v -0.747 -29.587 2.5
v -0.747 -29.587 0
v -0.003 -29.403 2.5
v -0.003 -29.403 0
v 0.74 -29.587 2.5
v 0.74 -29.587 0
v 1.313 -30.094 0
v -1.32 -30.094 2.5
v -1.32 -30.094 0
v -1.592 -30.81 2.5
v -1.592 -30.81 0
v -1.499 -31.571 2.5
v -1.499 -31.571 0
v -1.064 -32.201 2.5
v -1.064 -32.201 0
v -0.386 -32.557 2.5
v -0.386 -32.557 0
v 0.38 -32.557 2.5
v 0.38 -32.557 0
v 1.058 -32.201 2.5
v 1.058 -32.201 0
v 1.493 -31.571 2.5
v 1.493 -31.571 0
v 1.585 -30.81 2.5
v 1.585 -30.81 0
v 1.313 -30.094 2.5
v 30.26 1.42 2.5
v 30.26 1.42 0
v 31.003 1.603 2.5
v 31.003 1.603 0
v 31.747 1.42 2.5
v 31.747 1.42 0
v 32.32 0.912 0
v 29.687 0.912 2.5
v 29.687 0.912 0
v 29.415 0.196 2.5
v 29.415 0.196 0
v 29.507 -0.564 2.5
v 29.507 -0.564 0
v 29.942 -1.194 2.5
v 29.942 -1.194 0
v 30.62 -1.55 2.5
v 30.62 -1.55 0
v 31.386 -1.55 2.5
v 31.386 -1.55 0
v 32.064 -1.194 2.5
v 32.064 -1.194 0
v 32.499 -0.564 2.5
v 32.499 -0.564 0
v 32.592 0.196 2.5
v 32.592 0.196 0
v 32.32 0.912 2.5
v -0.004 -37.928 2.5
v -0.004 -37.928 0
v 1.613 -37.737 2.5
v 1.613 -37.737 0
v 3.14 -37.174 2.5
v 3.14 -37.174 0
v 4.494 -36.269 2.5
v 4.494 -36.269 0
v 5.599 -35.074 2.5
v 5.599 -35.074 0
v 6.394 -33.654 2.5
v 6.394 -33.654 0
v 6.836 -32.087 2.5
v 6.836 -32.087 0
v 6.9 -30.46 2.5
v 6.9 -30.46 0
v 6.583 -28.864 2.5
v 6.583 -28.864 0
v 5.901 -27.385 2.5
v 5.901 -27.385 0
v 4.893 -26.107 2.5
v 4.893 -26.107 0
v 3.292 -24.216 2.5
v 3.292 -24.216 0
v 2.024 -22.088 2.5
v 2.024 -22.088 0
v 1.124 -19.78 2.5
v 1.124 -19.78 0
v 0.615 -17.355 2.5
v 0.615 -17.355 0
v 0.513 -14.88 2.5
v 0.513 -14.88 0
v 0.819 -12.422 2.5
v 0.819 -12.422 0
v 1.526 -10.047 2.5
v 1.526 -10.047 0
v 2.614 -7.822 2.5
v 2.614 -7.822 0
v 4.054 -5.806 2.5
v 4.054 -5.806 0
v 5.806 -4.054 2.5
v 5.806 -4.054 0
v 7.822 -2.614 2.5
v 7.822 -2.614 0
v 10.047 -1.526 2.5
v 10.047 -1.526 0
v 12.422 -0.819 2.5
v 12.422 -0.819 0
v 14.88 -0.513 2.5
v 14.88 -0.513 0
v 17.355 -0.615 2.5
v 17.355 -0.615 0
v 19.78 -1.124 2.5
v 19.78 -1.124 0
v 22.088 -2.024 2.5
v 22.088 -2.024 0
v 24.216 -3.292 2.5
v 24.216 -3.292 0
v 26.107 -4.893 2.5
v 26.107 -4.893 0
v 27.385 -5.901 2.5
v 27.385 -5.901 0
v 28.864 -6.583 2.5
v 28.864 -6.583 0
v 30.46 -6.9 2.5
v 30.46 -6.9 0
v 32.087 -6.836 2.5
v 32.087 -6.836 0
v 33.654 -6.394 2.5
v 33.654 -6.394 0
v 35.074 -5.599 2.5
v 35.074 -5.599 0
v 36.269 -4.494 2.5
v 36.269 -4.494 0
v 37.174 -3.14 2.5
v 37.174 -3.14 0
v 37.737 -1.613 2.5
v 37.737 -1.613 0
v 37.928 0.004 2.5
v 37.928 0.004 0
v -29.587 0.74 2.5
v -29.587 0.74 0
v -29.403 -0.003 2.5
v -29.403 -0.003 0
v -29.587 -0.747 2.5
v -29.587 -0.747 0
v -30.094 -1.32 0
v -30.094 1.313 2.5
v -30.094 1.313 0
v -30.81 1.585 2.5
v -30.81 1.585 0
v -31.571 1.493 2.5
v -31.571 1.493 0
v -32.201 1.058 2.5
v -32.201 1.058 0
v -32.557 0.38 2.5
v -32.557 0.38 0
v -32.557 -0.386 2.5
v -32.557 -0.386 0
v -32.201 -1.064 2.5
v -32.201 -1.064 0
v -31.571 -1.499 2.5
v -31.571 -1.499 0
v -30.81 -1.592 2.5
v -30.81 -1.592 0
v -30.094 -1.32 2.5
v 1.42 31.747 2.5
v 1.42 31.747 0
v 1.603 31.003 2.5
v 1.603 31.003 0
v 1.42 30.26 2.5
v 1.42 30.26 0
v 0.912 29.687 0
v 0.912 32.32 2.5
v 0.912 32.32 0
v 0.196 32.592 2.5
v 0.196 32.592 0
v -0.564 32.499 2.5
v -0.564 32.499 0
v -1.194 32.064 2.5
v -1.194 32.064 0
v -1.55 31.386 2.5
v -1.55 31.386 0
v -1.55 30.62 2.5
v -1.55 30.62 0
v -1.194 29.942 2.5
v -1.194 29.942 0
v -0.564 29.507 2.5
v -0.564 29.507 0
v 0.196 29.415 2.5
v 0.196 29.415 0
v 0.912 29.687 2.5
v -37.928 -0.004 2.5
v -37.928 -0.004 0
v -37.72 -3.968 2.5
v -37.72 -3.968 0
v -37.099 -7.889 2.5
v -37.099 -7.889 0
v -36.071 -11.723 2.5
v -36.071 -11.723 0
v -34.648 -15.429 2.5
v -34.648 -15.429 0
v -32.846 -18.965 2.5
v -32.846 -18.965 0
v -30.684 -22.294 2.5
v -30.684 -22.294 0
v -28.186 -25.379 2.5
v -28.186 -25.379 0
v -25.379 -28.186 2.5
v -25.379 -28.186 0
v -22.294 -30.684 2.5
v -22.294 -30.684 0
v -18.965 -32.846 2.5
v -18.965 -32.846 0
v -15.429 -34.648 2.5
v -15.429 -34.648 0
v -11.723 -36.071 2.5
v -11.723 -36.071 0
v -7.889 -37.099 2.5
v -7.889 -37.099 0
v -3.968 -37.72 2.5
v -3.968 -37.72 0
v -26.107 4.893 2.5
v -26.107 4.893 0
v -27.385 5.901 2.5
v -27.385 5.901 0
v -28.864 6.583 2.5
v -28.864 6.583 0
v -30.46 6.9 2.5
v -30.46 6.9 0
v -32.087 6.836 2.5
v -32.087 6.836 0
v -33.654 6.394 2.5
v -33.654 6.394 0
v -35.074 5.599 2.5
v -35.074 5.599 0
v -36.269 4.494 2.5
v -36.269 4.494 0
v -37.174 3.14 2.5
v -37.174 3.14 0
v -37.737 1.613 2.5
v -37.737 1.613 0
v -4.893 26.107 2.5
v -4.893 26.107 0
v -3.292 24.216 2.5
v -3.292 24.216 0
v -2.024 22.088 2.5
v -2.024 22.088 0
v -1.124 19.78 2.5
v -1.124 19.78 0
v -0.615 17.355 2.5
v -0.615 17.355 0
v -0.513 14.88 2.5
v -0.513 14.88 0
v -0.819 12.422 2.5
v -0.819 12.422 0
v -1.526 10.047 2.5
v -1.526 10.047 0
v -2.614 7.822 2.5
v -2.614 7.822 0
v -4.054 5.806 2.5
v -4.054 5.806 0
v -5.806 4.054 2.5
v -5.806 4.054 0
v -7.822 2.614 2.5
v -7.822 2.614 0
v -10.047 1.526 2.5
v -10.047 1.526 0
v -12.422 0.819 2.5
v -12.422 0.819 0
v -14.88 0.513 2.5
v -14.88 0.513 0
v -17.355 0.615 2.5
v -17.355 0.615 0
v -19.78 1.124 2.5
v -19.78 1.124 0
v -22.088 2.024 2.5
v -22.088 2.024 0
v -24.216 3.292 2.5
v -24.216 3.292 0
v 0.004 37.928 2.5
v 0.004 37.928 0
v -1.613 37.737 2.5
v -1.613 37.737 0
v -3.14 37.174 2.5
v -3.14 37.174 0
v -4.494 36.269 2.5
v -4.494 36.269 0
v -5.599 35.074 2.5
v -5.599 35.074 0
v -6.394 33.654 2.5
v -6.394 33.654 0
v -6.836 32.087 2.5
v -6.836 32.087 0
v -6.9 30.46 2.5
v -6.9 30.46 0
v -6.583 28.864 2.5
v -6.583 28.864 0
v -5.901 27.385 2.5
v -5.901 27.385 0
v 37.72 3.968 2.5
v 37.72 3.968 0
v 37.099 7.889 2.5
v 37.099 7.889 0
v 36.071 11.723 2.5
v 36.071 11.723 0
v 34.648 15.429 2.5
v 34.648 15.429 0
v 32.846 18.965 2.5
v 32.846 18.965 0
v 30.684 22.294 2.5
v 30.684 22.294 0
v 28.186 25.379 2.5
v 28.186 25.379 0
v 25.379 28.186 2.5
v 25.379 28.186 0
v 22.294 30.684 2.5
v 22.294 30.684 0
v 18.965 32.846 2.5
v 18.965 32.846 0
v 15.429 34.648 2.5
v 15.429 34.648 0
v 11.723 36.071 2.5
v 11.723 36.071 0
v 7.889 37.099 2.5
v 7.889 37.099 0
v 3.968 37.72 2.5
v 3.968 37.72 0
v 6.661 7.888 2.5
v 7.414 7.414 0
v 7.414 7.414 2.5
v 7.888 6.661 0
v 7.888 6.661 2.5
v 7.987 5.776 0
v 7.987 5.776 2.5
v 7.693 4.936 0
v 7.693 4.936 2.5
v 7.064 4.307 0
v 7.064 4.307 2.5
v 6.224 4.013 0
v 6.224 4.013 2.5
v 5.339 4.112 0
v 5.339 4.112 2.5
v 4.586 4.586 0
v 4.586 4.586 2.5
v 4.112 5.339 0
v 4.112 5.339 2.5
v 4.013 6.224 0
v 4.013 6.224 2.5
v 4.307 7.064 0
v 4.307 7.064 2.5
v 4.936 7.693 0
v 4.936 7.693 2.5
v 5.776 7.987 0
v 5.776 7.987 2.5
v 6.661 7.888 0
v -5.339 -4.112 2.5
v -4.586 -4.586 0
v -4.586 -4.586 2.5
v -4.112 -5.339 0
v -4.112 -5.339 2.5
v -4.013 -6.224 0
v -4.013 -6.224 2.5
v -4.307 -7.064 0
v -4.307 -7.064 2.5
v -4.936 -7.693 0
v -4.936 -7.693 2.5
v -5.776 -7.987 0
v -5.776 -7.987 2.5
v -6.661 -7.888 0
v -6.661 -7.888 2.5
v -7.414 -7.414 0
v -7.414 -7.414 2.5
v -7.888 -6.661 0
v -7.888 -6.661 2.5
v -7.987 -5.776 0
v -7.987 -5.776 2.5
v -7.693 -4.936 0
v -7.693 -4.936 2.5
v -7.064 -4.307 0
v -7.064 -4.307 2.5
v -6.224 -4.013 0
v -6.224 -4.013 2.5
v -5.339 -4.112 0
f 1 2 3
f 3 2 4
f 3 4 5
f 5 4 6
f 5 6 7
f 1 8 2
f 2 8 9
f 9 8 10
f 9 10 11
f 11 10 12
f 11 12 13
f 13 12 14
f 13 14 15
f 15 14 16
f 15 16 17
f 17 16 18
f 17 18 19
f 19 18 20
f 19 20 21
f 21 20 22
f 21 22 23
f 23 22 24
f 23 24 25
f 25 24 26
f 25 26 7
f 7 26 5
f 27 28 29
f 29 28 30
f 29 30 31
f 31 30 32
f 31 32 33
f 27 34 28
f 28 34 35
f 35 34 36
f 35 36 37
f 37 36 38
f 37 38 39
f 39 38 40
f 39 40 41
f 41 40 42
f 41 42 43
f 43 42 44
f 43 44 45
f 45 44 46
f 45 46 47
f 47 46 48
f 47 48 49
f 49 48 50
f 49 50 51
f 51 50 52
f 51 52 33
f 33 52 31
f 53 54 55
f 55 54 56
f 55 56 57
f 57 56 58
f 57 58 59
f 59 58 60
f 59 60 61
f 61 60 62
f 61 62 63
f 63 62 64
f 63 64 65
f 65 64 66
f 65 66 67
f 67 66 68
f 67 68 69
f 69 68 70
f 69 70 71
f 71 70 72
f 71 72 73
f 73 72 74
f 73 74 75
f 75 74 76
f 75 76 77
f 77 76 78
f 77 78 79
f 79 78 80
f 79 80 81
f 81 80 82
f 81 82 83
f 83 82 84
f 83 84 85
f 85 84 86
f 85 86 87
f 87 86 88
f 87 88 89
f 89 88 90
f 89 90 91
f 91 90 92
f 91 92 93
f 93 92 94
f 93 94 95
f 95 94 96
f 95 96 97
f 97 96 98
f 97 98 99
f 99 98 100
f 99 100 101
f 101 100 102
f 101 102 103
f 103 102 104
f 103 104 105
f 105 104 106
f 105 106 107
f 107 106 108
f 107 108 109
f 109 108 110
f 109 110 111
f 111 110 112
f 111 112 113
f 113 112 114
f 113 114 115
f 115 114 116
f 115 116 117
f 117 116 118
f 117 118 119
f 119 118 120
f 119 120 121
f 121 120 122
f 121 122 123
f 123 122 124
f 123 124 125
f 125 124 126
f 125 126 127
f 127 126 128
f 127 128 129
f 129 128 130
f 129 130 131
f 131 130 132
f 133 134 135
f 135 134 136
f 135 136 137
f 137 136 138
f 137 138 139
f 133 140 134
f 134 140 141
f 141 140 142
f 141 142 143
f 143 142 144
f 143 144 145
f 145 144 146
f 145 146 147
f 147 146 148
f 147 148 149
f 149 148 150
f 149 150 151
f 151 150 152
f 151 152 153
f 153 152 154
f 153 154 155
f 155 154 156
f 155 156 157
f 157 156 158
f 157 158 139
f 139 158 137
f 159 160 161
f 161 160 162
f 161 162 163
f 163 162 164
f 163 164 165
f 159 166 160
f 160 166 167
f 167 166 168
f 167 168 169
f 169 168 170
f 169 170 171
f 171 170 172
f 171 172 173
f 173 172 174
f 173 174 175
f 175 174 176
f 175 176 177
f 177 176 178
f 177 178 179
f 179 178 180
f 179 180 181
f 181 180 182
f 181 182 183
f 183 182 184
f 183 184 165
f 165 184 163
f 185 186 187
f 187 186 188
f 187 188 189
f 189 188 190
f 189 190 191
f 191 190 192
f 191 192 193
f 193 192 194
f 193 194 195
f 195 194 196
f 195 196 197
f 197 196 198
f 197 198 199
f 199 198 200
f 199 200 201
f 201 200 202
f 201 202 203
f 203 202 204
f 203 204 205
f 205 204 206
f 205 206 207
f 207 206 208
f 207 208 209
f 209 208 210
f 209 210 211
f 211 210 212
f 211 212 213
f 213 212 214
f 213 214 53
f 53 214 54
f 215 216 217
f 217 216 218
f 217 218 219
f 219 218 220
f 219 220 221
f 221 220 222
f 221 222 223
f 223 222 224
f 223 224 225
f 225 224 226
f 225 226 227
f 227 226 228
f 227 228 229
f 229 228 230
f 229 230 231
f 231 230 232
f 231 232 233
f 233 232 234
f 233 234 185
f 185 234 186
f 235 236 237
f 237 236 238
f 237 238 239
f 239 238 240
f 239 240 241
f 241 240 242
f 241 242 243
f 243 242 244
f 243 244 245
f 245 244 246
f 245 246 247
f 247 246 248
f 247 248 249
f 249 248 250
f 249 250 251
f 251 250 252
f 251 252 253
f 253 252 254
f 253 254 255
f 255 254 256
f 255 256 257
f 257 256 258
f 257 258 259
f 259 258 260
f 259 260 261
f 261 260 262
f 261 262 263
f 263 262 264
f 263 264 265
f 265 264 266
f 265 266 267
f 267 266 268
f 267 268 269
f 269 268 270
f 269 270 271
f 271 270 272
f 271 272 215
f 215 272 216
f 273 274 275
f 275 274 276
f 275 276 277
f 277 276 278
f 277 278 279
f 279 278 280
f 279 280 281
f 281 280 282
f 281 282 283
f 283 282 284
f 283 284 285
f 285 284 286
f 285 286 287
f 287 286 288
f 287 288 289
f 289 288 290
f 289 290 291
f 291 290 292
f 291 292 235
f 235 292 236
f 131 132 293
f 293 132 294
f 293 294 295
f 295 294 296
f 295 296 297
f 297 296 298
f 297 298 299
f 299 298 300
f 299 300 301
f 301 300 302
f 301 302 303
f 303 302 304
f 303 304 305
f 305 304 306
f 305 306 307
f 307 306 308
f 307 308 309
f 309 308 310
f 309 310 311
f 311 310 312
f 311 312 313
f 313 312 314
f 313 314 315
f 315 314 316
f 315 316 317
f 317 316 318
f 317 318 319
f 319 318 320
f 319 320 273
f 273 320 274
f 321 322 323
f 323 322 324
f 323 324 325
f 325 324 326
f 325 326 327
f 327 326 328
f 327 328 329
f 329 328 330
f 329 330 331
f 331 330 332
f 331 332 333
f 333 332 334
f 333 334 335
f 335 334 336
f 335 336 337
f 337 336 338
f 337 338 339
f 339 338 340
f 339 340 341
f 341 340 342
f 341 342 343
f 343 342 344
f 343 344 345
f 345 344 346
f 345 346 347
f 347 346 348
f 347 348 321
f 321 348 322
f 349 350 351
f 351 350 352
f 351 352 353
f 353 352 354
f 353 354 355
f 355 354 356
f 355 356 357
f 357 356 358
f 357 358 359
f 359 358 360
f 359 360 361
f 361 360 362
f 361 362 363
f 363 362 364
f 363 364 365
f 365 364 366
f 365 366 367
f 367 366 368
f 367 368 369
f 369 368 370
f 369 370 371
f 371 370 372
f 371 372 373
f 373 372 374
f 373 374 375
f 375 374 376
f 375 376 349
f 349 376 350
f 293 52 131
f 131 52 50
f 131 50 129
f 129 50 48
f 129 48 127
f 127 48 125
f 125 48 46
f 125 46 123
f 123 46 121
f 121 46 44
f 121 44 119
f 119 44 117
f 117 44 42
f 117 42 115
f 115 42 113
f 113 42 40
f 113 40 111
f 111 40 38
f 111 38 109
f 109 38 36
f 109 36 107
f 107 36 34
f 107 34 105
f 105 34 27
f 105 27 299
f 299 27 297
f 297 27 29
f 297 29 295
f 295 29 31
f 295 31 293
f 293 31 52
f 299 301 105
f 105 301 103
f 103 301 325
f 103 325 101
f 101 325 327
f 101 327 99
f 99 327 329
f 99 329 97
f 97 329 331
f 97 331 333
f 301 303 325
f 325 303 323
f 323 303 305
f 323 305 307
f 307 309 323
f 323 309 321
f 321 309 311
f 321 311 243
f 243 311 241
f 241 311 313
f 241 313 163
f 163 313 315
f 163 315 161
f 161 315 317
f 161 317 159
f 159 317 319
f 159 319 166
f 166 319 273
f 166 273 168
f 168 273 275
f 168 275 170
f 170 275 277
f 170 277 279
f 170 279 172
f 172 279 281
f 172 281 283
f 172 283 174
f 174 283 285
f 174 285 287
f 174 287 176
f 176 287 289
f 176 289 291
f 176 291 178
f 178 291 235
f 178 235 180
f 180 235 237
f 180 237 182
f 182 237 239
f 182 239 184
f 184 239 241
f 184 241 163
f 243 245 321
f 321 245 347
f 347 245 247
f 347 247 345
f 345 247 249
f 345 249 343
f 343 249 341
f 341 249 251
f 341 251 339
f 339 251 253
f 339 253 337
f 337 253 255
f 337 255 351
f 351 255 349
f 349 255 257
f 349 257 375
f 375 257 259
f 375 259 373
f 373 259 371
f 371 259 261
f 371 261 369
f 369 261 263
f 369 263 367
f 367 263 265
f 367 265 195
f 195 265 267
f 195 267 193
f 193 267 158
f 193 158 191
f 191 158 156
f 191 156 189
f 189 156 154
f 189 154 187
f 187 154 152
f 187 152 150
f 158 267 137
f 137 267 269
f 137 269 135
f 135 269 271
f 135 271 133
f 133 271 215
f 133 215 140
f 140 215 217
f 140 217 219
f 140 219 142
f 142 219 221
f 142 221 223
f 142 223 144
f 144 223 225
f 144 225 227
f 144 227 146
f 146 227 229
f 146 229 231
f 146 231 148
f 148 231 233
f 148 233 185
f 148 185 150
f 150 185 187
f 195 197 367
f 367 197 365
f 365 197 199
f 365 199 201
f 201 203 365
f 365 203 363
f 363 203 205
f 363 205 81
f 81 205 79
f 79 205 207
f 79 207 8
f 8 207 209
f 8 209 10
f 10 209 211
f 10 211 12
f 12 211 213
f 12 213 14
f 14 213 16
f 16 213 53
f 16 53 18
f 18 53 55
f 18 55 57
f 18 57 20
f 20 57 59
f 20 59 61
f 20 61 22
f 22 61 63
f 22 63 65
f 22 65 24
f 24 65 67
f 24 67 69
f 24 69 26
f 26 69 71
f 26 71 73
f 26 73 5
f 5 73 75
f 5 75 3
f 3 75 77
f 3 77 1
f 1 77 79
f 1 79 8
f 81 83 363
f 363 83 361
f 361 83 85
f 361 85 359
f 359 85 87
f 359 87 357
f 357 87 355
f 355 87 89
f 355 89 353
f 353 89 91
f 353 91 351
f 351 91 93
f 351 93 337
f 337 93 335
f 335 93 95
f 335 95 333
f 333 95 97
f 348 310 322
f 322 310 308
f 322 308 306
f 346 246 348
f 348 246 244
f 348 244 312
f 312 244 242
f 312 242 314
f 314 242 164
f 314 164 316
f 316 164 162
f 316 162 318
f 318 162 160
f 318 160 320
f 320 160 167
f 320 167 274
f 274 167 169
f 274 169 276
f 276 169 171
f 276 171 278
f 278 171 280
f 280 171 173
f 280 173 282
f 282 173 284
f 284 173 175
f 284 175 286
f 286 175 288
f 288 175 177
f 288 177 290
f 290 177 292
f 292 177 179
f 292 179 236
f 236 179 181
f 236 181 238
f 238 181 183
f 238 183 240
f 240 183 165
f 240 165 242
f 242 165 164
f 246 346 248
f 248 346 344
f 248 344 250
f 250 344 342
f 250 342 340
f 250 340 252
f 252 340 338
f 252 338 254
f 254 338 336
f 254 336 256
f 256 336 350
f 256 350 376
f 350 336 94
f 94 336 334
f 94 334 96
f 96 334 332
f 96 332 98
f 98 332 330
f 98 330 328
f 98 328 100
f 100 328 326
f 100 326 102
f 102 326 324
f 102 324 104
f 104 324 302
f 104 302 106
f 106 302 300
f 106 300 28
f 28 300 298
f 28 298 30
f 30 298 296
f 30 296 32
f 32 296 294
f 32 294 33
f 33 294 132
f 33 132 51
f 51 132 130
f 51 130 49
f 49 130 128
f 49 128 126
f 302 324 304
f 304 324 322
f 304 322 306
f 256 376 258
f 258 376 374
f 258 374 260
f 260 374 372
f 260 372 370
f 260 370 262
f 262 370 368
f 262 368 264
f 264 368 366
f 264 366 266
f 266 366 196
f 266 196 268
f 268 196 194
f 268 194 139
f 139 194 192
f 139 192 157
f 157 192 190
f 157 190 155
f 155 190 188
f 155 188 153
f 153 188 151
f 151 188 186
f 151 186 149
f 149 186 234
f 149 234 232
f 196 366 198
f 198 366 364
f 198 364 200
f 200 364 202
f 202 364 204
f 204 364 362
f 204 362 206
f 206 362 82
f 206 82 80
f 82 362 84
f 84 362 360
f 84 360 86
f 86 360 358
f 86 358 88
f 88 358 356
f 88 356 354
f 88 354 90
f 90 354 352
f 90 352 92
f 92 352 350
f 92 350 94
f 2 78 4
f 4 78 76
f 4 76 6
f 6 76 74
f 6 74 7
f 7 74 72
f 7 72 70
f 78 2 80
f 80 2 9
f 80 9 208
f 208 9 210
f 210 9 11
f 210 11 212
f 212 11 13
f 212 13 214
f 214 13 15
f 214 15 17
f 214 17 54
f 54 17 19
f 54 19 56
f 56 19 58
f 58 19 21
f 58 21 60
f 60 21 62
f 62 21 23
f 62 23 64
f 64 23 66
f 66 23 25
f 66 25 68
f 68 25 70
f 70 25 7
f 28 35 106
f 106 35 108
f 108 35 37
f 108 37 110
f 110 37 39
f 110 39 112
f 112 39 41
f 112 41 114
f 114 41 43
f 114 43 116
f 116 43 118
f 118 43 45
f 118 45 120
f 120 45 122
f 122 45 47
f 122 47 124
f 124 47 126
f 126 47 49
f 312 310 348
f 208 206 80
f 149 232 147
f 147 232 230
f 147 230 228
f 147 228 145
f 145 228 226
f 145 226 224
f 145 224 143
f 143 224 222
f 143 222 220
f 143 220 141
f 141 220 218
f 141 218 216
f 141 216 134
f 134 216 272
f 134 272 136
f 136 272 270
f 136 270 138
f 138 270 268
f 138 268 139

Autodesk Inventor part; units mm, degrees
ref_plane "YZ Plane" through (0, 0, 0) normal (1, 0, 0) x (0, 1, 0)
ref_plane "XZ Plane" through (0, 0, 0) normal (0, 1, 0) x (-1, 0, 0)
ref_plane "XY Plane" through (0, 0, 0) normal (0, 0, 1) x (1, 0, 0)
sketch "Sketch2" plane through (0, 0, 0) normal (0, 0, 1) x (1, 0, 0)
  circle A0 centre (6, 6) radius 2
  circle A1 centre (0.0033, 31.0033) radius 1.6
  circle A2 centre (-31.0033, -0.0033) radius 1.6
  line L0 (-31.0033, -0.0033) -> (0.0033, 31.0033) construction
  arc A3 (-26.1066, 4.8934) -> (-4.8934, 26.1066) centre (-15.5, 15.5) ccw
  line L1 (-15.5, 15.5) -> (0, 0) construction
  arc A4 (0.0041, 37.9283) -> (-4.8934, 26.1066) centre (0.0033, 31.0033) ccw
  circle A5 centre (-6, -6) radius 2
  line L2 (6, 6) -> (-6, -6) construction
  arc A6 (26.8194, 26.8194) -> (0.0041, 37.9283) centre (0, 0) ccw
  line L3 (26.8194, 26.8194) -> (7.4142, 7.4142)
  arc A7 (-26.1066, 4.8934) -> (-37.9283, -0.0041) centre (-31.0033, -0.0033) ccw
  arc A8 (-37.9283, -0.0041) -> (-26.8194, -26.8194) centre (0, 0) ccw
  line L4 (-26.8194, -26.8194) -> (-7.4142, -7.4142)
  line L5 (-4.5858, -4.5858) -> (4.5858, 4.5858)
  dimension "d0" = 6
  dimension "d1" = 6
  dimension "d2" = 4
  dimension "d3" = 43.85
  dimension "d4" = 3.2
  dimension "d5" = 30
  dimension "d6" = 15.5
  dimension "d7" = 15.5
extrude "Extrusion1" add sketch "Sketch2" along normal blind 2.5 contours A0 L5 A5 L4 A8 A7 A3 A4 A6 L3
mirror "Mirror1" about plane through (-4.5858, -4.5858, 0) normal (0.7071, -0.7071, 0)
equation "\"d1\" = d0"
equation "\"d7\" = d6"
properties part number "mount-plate_3DPrint"
